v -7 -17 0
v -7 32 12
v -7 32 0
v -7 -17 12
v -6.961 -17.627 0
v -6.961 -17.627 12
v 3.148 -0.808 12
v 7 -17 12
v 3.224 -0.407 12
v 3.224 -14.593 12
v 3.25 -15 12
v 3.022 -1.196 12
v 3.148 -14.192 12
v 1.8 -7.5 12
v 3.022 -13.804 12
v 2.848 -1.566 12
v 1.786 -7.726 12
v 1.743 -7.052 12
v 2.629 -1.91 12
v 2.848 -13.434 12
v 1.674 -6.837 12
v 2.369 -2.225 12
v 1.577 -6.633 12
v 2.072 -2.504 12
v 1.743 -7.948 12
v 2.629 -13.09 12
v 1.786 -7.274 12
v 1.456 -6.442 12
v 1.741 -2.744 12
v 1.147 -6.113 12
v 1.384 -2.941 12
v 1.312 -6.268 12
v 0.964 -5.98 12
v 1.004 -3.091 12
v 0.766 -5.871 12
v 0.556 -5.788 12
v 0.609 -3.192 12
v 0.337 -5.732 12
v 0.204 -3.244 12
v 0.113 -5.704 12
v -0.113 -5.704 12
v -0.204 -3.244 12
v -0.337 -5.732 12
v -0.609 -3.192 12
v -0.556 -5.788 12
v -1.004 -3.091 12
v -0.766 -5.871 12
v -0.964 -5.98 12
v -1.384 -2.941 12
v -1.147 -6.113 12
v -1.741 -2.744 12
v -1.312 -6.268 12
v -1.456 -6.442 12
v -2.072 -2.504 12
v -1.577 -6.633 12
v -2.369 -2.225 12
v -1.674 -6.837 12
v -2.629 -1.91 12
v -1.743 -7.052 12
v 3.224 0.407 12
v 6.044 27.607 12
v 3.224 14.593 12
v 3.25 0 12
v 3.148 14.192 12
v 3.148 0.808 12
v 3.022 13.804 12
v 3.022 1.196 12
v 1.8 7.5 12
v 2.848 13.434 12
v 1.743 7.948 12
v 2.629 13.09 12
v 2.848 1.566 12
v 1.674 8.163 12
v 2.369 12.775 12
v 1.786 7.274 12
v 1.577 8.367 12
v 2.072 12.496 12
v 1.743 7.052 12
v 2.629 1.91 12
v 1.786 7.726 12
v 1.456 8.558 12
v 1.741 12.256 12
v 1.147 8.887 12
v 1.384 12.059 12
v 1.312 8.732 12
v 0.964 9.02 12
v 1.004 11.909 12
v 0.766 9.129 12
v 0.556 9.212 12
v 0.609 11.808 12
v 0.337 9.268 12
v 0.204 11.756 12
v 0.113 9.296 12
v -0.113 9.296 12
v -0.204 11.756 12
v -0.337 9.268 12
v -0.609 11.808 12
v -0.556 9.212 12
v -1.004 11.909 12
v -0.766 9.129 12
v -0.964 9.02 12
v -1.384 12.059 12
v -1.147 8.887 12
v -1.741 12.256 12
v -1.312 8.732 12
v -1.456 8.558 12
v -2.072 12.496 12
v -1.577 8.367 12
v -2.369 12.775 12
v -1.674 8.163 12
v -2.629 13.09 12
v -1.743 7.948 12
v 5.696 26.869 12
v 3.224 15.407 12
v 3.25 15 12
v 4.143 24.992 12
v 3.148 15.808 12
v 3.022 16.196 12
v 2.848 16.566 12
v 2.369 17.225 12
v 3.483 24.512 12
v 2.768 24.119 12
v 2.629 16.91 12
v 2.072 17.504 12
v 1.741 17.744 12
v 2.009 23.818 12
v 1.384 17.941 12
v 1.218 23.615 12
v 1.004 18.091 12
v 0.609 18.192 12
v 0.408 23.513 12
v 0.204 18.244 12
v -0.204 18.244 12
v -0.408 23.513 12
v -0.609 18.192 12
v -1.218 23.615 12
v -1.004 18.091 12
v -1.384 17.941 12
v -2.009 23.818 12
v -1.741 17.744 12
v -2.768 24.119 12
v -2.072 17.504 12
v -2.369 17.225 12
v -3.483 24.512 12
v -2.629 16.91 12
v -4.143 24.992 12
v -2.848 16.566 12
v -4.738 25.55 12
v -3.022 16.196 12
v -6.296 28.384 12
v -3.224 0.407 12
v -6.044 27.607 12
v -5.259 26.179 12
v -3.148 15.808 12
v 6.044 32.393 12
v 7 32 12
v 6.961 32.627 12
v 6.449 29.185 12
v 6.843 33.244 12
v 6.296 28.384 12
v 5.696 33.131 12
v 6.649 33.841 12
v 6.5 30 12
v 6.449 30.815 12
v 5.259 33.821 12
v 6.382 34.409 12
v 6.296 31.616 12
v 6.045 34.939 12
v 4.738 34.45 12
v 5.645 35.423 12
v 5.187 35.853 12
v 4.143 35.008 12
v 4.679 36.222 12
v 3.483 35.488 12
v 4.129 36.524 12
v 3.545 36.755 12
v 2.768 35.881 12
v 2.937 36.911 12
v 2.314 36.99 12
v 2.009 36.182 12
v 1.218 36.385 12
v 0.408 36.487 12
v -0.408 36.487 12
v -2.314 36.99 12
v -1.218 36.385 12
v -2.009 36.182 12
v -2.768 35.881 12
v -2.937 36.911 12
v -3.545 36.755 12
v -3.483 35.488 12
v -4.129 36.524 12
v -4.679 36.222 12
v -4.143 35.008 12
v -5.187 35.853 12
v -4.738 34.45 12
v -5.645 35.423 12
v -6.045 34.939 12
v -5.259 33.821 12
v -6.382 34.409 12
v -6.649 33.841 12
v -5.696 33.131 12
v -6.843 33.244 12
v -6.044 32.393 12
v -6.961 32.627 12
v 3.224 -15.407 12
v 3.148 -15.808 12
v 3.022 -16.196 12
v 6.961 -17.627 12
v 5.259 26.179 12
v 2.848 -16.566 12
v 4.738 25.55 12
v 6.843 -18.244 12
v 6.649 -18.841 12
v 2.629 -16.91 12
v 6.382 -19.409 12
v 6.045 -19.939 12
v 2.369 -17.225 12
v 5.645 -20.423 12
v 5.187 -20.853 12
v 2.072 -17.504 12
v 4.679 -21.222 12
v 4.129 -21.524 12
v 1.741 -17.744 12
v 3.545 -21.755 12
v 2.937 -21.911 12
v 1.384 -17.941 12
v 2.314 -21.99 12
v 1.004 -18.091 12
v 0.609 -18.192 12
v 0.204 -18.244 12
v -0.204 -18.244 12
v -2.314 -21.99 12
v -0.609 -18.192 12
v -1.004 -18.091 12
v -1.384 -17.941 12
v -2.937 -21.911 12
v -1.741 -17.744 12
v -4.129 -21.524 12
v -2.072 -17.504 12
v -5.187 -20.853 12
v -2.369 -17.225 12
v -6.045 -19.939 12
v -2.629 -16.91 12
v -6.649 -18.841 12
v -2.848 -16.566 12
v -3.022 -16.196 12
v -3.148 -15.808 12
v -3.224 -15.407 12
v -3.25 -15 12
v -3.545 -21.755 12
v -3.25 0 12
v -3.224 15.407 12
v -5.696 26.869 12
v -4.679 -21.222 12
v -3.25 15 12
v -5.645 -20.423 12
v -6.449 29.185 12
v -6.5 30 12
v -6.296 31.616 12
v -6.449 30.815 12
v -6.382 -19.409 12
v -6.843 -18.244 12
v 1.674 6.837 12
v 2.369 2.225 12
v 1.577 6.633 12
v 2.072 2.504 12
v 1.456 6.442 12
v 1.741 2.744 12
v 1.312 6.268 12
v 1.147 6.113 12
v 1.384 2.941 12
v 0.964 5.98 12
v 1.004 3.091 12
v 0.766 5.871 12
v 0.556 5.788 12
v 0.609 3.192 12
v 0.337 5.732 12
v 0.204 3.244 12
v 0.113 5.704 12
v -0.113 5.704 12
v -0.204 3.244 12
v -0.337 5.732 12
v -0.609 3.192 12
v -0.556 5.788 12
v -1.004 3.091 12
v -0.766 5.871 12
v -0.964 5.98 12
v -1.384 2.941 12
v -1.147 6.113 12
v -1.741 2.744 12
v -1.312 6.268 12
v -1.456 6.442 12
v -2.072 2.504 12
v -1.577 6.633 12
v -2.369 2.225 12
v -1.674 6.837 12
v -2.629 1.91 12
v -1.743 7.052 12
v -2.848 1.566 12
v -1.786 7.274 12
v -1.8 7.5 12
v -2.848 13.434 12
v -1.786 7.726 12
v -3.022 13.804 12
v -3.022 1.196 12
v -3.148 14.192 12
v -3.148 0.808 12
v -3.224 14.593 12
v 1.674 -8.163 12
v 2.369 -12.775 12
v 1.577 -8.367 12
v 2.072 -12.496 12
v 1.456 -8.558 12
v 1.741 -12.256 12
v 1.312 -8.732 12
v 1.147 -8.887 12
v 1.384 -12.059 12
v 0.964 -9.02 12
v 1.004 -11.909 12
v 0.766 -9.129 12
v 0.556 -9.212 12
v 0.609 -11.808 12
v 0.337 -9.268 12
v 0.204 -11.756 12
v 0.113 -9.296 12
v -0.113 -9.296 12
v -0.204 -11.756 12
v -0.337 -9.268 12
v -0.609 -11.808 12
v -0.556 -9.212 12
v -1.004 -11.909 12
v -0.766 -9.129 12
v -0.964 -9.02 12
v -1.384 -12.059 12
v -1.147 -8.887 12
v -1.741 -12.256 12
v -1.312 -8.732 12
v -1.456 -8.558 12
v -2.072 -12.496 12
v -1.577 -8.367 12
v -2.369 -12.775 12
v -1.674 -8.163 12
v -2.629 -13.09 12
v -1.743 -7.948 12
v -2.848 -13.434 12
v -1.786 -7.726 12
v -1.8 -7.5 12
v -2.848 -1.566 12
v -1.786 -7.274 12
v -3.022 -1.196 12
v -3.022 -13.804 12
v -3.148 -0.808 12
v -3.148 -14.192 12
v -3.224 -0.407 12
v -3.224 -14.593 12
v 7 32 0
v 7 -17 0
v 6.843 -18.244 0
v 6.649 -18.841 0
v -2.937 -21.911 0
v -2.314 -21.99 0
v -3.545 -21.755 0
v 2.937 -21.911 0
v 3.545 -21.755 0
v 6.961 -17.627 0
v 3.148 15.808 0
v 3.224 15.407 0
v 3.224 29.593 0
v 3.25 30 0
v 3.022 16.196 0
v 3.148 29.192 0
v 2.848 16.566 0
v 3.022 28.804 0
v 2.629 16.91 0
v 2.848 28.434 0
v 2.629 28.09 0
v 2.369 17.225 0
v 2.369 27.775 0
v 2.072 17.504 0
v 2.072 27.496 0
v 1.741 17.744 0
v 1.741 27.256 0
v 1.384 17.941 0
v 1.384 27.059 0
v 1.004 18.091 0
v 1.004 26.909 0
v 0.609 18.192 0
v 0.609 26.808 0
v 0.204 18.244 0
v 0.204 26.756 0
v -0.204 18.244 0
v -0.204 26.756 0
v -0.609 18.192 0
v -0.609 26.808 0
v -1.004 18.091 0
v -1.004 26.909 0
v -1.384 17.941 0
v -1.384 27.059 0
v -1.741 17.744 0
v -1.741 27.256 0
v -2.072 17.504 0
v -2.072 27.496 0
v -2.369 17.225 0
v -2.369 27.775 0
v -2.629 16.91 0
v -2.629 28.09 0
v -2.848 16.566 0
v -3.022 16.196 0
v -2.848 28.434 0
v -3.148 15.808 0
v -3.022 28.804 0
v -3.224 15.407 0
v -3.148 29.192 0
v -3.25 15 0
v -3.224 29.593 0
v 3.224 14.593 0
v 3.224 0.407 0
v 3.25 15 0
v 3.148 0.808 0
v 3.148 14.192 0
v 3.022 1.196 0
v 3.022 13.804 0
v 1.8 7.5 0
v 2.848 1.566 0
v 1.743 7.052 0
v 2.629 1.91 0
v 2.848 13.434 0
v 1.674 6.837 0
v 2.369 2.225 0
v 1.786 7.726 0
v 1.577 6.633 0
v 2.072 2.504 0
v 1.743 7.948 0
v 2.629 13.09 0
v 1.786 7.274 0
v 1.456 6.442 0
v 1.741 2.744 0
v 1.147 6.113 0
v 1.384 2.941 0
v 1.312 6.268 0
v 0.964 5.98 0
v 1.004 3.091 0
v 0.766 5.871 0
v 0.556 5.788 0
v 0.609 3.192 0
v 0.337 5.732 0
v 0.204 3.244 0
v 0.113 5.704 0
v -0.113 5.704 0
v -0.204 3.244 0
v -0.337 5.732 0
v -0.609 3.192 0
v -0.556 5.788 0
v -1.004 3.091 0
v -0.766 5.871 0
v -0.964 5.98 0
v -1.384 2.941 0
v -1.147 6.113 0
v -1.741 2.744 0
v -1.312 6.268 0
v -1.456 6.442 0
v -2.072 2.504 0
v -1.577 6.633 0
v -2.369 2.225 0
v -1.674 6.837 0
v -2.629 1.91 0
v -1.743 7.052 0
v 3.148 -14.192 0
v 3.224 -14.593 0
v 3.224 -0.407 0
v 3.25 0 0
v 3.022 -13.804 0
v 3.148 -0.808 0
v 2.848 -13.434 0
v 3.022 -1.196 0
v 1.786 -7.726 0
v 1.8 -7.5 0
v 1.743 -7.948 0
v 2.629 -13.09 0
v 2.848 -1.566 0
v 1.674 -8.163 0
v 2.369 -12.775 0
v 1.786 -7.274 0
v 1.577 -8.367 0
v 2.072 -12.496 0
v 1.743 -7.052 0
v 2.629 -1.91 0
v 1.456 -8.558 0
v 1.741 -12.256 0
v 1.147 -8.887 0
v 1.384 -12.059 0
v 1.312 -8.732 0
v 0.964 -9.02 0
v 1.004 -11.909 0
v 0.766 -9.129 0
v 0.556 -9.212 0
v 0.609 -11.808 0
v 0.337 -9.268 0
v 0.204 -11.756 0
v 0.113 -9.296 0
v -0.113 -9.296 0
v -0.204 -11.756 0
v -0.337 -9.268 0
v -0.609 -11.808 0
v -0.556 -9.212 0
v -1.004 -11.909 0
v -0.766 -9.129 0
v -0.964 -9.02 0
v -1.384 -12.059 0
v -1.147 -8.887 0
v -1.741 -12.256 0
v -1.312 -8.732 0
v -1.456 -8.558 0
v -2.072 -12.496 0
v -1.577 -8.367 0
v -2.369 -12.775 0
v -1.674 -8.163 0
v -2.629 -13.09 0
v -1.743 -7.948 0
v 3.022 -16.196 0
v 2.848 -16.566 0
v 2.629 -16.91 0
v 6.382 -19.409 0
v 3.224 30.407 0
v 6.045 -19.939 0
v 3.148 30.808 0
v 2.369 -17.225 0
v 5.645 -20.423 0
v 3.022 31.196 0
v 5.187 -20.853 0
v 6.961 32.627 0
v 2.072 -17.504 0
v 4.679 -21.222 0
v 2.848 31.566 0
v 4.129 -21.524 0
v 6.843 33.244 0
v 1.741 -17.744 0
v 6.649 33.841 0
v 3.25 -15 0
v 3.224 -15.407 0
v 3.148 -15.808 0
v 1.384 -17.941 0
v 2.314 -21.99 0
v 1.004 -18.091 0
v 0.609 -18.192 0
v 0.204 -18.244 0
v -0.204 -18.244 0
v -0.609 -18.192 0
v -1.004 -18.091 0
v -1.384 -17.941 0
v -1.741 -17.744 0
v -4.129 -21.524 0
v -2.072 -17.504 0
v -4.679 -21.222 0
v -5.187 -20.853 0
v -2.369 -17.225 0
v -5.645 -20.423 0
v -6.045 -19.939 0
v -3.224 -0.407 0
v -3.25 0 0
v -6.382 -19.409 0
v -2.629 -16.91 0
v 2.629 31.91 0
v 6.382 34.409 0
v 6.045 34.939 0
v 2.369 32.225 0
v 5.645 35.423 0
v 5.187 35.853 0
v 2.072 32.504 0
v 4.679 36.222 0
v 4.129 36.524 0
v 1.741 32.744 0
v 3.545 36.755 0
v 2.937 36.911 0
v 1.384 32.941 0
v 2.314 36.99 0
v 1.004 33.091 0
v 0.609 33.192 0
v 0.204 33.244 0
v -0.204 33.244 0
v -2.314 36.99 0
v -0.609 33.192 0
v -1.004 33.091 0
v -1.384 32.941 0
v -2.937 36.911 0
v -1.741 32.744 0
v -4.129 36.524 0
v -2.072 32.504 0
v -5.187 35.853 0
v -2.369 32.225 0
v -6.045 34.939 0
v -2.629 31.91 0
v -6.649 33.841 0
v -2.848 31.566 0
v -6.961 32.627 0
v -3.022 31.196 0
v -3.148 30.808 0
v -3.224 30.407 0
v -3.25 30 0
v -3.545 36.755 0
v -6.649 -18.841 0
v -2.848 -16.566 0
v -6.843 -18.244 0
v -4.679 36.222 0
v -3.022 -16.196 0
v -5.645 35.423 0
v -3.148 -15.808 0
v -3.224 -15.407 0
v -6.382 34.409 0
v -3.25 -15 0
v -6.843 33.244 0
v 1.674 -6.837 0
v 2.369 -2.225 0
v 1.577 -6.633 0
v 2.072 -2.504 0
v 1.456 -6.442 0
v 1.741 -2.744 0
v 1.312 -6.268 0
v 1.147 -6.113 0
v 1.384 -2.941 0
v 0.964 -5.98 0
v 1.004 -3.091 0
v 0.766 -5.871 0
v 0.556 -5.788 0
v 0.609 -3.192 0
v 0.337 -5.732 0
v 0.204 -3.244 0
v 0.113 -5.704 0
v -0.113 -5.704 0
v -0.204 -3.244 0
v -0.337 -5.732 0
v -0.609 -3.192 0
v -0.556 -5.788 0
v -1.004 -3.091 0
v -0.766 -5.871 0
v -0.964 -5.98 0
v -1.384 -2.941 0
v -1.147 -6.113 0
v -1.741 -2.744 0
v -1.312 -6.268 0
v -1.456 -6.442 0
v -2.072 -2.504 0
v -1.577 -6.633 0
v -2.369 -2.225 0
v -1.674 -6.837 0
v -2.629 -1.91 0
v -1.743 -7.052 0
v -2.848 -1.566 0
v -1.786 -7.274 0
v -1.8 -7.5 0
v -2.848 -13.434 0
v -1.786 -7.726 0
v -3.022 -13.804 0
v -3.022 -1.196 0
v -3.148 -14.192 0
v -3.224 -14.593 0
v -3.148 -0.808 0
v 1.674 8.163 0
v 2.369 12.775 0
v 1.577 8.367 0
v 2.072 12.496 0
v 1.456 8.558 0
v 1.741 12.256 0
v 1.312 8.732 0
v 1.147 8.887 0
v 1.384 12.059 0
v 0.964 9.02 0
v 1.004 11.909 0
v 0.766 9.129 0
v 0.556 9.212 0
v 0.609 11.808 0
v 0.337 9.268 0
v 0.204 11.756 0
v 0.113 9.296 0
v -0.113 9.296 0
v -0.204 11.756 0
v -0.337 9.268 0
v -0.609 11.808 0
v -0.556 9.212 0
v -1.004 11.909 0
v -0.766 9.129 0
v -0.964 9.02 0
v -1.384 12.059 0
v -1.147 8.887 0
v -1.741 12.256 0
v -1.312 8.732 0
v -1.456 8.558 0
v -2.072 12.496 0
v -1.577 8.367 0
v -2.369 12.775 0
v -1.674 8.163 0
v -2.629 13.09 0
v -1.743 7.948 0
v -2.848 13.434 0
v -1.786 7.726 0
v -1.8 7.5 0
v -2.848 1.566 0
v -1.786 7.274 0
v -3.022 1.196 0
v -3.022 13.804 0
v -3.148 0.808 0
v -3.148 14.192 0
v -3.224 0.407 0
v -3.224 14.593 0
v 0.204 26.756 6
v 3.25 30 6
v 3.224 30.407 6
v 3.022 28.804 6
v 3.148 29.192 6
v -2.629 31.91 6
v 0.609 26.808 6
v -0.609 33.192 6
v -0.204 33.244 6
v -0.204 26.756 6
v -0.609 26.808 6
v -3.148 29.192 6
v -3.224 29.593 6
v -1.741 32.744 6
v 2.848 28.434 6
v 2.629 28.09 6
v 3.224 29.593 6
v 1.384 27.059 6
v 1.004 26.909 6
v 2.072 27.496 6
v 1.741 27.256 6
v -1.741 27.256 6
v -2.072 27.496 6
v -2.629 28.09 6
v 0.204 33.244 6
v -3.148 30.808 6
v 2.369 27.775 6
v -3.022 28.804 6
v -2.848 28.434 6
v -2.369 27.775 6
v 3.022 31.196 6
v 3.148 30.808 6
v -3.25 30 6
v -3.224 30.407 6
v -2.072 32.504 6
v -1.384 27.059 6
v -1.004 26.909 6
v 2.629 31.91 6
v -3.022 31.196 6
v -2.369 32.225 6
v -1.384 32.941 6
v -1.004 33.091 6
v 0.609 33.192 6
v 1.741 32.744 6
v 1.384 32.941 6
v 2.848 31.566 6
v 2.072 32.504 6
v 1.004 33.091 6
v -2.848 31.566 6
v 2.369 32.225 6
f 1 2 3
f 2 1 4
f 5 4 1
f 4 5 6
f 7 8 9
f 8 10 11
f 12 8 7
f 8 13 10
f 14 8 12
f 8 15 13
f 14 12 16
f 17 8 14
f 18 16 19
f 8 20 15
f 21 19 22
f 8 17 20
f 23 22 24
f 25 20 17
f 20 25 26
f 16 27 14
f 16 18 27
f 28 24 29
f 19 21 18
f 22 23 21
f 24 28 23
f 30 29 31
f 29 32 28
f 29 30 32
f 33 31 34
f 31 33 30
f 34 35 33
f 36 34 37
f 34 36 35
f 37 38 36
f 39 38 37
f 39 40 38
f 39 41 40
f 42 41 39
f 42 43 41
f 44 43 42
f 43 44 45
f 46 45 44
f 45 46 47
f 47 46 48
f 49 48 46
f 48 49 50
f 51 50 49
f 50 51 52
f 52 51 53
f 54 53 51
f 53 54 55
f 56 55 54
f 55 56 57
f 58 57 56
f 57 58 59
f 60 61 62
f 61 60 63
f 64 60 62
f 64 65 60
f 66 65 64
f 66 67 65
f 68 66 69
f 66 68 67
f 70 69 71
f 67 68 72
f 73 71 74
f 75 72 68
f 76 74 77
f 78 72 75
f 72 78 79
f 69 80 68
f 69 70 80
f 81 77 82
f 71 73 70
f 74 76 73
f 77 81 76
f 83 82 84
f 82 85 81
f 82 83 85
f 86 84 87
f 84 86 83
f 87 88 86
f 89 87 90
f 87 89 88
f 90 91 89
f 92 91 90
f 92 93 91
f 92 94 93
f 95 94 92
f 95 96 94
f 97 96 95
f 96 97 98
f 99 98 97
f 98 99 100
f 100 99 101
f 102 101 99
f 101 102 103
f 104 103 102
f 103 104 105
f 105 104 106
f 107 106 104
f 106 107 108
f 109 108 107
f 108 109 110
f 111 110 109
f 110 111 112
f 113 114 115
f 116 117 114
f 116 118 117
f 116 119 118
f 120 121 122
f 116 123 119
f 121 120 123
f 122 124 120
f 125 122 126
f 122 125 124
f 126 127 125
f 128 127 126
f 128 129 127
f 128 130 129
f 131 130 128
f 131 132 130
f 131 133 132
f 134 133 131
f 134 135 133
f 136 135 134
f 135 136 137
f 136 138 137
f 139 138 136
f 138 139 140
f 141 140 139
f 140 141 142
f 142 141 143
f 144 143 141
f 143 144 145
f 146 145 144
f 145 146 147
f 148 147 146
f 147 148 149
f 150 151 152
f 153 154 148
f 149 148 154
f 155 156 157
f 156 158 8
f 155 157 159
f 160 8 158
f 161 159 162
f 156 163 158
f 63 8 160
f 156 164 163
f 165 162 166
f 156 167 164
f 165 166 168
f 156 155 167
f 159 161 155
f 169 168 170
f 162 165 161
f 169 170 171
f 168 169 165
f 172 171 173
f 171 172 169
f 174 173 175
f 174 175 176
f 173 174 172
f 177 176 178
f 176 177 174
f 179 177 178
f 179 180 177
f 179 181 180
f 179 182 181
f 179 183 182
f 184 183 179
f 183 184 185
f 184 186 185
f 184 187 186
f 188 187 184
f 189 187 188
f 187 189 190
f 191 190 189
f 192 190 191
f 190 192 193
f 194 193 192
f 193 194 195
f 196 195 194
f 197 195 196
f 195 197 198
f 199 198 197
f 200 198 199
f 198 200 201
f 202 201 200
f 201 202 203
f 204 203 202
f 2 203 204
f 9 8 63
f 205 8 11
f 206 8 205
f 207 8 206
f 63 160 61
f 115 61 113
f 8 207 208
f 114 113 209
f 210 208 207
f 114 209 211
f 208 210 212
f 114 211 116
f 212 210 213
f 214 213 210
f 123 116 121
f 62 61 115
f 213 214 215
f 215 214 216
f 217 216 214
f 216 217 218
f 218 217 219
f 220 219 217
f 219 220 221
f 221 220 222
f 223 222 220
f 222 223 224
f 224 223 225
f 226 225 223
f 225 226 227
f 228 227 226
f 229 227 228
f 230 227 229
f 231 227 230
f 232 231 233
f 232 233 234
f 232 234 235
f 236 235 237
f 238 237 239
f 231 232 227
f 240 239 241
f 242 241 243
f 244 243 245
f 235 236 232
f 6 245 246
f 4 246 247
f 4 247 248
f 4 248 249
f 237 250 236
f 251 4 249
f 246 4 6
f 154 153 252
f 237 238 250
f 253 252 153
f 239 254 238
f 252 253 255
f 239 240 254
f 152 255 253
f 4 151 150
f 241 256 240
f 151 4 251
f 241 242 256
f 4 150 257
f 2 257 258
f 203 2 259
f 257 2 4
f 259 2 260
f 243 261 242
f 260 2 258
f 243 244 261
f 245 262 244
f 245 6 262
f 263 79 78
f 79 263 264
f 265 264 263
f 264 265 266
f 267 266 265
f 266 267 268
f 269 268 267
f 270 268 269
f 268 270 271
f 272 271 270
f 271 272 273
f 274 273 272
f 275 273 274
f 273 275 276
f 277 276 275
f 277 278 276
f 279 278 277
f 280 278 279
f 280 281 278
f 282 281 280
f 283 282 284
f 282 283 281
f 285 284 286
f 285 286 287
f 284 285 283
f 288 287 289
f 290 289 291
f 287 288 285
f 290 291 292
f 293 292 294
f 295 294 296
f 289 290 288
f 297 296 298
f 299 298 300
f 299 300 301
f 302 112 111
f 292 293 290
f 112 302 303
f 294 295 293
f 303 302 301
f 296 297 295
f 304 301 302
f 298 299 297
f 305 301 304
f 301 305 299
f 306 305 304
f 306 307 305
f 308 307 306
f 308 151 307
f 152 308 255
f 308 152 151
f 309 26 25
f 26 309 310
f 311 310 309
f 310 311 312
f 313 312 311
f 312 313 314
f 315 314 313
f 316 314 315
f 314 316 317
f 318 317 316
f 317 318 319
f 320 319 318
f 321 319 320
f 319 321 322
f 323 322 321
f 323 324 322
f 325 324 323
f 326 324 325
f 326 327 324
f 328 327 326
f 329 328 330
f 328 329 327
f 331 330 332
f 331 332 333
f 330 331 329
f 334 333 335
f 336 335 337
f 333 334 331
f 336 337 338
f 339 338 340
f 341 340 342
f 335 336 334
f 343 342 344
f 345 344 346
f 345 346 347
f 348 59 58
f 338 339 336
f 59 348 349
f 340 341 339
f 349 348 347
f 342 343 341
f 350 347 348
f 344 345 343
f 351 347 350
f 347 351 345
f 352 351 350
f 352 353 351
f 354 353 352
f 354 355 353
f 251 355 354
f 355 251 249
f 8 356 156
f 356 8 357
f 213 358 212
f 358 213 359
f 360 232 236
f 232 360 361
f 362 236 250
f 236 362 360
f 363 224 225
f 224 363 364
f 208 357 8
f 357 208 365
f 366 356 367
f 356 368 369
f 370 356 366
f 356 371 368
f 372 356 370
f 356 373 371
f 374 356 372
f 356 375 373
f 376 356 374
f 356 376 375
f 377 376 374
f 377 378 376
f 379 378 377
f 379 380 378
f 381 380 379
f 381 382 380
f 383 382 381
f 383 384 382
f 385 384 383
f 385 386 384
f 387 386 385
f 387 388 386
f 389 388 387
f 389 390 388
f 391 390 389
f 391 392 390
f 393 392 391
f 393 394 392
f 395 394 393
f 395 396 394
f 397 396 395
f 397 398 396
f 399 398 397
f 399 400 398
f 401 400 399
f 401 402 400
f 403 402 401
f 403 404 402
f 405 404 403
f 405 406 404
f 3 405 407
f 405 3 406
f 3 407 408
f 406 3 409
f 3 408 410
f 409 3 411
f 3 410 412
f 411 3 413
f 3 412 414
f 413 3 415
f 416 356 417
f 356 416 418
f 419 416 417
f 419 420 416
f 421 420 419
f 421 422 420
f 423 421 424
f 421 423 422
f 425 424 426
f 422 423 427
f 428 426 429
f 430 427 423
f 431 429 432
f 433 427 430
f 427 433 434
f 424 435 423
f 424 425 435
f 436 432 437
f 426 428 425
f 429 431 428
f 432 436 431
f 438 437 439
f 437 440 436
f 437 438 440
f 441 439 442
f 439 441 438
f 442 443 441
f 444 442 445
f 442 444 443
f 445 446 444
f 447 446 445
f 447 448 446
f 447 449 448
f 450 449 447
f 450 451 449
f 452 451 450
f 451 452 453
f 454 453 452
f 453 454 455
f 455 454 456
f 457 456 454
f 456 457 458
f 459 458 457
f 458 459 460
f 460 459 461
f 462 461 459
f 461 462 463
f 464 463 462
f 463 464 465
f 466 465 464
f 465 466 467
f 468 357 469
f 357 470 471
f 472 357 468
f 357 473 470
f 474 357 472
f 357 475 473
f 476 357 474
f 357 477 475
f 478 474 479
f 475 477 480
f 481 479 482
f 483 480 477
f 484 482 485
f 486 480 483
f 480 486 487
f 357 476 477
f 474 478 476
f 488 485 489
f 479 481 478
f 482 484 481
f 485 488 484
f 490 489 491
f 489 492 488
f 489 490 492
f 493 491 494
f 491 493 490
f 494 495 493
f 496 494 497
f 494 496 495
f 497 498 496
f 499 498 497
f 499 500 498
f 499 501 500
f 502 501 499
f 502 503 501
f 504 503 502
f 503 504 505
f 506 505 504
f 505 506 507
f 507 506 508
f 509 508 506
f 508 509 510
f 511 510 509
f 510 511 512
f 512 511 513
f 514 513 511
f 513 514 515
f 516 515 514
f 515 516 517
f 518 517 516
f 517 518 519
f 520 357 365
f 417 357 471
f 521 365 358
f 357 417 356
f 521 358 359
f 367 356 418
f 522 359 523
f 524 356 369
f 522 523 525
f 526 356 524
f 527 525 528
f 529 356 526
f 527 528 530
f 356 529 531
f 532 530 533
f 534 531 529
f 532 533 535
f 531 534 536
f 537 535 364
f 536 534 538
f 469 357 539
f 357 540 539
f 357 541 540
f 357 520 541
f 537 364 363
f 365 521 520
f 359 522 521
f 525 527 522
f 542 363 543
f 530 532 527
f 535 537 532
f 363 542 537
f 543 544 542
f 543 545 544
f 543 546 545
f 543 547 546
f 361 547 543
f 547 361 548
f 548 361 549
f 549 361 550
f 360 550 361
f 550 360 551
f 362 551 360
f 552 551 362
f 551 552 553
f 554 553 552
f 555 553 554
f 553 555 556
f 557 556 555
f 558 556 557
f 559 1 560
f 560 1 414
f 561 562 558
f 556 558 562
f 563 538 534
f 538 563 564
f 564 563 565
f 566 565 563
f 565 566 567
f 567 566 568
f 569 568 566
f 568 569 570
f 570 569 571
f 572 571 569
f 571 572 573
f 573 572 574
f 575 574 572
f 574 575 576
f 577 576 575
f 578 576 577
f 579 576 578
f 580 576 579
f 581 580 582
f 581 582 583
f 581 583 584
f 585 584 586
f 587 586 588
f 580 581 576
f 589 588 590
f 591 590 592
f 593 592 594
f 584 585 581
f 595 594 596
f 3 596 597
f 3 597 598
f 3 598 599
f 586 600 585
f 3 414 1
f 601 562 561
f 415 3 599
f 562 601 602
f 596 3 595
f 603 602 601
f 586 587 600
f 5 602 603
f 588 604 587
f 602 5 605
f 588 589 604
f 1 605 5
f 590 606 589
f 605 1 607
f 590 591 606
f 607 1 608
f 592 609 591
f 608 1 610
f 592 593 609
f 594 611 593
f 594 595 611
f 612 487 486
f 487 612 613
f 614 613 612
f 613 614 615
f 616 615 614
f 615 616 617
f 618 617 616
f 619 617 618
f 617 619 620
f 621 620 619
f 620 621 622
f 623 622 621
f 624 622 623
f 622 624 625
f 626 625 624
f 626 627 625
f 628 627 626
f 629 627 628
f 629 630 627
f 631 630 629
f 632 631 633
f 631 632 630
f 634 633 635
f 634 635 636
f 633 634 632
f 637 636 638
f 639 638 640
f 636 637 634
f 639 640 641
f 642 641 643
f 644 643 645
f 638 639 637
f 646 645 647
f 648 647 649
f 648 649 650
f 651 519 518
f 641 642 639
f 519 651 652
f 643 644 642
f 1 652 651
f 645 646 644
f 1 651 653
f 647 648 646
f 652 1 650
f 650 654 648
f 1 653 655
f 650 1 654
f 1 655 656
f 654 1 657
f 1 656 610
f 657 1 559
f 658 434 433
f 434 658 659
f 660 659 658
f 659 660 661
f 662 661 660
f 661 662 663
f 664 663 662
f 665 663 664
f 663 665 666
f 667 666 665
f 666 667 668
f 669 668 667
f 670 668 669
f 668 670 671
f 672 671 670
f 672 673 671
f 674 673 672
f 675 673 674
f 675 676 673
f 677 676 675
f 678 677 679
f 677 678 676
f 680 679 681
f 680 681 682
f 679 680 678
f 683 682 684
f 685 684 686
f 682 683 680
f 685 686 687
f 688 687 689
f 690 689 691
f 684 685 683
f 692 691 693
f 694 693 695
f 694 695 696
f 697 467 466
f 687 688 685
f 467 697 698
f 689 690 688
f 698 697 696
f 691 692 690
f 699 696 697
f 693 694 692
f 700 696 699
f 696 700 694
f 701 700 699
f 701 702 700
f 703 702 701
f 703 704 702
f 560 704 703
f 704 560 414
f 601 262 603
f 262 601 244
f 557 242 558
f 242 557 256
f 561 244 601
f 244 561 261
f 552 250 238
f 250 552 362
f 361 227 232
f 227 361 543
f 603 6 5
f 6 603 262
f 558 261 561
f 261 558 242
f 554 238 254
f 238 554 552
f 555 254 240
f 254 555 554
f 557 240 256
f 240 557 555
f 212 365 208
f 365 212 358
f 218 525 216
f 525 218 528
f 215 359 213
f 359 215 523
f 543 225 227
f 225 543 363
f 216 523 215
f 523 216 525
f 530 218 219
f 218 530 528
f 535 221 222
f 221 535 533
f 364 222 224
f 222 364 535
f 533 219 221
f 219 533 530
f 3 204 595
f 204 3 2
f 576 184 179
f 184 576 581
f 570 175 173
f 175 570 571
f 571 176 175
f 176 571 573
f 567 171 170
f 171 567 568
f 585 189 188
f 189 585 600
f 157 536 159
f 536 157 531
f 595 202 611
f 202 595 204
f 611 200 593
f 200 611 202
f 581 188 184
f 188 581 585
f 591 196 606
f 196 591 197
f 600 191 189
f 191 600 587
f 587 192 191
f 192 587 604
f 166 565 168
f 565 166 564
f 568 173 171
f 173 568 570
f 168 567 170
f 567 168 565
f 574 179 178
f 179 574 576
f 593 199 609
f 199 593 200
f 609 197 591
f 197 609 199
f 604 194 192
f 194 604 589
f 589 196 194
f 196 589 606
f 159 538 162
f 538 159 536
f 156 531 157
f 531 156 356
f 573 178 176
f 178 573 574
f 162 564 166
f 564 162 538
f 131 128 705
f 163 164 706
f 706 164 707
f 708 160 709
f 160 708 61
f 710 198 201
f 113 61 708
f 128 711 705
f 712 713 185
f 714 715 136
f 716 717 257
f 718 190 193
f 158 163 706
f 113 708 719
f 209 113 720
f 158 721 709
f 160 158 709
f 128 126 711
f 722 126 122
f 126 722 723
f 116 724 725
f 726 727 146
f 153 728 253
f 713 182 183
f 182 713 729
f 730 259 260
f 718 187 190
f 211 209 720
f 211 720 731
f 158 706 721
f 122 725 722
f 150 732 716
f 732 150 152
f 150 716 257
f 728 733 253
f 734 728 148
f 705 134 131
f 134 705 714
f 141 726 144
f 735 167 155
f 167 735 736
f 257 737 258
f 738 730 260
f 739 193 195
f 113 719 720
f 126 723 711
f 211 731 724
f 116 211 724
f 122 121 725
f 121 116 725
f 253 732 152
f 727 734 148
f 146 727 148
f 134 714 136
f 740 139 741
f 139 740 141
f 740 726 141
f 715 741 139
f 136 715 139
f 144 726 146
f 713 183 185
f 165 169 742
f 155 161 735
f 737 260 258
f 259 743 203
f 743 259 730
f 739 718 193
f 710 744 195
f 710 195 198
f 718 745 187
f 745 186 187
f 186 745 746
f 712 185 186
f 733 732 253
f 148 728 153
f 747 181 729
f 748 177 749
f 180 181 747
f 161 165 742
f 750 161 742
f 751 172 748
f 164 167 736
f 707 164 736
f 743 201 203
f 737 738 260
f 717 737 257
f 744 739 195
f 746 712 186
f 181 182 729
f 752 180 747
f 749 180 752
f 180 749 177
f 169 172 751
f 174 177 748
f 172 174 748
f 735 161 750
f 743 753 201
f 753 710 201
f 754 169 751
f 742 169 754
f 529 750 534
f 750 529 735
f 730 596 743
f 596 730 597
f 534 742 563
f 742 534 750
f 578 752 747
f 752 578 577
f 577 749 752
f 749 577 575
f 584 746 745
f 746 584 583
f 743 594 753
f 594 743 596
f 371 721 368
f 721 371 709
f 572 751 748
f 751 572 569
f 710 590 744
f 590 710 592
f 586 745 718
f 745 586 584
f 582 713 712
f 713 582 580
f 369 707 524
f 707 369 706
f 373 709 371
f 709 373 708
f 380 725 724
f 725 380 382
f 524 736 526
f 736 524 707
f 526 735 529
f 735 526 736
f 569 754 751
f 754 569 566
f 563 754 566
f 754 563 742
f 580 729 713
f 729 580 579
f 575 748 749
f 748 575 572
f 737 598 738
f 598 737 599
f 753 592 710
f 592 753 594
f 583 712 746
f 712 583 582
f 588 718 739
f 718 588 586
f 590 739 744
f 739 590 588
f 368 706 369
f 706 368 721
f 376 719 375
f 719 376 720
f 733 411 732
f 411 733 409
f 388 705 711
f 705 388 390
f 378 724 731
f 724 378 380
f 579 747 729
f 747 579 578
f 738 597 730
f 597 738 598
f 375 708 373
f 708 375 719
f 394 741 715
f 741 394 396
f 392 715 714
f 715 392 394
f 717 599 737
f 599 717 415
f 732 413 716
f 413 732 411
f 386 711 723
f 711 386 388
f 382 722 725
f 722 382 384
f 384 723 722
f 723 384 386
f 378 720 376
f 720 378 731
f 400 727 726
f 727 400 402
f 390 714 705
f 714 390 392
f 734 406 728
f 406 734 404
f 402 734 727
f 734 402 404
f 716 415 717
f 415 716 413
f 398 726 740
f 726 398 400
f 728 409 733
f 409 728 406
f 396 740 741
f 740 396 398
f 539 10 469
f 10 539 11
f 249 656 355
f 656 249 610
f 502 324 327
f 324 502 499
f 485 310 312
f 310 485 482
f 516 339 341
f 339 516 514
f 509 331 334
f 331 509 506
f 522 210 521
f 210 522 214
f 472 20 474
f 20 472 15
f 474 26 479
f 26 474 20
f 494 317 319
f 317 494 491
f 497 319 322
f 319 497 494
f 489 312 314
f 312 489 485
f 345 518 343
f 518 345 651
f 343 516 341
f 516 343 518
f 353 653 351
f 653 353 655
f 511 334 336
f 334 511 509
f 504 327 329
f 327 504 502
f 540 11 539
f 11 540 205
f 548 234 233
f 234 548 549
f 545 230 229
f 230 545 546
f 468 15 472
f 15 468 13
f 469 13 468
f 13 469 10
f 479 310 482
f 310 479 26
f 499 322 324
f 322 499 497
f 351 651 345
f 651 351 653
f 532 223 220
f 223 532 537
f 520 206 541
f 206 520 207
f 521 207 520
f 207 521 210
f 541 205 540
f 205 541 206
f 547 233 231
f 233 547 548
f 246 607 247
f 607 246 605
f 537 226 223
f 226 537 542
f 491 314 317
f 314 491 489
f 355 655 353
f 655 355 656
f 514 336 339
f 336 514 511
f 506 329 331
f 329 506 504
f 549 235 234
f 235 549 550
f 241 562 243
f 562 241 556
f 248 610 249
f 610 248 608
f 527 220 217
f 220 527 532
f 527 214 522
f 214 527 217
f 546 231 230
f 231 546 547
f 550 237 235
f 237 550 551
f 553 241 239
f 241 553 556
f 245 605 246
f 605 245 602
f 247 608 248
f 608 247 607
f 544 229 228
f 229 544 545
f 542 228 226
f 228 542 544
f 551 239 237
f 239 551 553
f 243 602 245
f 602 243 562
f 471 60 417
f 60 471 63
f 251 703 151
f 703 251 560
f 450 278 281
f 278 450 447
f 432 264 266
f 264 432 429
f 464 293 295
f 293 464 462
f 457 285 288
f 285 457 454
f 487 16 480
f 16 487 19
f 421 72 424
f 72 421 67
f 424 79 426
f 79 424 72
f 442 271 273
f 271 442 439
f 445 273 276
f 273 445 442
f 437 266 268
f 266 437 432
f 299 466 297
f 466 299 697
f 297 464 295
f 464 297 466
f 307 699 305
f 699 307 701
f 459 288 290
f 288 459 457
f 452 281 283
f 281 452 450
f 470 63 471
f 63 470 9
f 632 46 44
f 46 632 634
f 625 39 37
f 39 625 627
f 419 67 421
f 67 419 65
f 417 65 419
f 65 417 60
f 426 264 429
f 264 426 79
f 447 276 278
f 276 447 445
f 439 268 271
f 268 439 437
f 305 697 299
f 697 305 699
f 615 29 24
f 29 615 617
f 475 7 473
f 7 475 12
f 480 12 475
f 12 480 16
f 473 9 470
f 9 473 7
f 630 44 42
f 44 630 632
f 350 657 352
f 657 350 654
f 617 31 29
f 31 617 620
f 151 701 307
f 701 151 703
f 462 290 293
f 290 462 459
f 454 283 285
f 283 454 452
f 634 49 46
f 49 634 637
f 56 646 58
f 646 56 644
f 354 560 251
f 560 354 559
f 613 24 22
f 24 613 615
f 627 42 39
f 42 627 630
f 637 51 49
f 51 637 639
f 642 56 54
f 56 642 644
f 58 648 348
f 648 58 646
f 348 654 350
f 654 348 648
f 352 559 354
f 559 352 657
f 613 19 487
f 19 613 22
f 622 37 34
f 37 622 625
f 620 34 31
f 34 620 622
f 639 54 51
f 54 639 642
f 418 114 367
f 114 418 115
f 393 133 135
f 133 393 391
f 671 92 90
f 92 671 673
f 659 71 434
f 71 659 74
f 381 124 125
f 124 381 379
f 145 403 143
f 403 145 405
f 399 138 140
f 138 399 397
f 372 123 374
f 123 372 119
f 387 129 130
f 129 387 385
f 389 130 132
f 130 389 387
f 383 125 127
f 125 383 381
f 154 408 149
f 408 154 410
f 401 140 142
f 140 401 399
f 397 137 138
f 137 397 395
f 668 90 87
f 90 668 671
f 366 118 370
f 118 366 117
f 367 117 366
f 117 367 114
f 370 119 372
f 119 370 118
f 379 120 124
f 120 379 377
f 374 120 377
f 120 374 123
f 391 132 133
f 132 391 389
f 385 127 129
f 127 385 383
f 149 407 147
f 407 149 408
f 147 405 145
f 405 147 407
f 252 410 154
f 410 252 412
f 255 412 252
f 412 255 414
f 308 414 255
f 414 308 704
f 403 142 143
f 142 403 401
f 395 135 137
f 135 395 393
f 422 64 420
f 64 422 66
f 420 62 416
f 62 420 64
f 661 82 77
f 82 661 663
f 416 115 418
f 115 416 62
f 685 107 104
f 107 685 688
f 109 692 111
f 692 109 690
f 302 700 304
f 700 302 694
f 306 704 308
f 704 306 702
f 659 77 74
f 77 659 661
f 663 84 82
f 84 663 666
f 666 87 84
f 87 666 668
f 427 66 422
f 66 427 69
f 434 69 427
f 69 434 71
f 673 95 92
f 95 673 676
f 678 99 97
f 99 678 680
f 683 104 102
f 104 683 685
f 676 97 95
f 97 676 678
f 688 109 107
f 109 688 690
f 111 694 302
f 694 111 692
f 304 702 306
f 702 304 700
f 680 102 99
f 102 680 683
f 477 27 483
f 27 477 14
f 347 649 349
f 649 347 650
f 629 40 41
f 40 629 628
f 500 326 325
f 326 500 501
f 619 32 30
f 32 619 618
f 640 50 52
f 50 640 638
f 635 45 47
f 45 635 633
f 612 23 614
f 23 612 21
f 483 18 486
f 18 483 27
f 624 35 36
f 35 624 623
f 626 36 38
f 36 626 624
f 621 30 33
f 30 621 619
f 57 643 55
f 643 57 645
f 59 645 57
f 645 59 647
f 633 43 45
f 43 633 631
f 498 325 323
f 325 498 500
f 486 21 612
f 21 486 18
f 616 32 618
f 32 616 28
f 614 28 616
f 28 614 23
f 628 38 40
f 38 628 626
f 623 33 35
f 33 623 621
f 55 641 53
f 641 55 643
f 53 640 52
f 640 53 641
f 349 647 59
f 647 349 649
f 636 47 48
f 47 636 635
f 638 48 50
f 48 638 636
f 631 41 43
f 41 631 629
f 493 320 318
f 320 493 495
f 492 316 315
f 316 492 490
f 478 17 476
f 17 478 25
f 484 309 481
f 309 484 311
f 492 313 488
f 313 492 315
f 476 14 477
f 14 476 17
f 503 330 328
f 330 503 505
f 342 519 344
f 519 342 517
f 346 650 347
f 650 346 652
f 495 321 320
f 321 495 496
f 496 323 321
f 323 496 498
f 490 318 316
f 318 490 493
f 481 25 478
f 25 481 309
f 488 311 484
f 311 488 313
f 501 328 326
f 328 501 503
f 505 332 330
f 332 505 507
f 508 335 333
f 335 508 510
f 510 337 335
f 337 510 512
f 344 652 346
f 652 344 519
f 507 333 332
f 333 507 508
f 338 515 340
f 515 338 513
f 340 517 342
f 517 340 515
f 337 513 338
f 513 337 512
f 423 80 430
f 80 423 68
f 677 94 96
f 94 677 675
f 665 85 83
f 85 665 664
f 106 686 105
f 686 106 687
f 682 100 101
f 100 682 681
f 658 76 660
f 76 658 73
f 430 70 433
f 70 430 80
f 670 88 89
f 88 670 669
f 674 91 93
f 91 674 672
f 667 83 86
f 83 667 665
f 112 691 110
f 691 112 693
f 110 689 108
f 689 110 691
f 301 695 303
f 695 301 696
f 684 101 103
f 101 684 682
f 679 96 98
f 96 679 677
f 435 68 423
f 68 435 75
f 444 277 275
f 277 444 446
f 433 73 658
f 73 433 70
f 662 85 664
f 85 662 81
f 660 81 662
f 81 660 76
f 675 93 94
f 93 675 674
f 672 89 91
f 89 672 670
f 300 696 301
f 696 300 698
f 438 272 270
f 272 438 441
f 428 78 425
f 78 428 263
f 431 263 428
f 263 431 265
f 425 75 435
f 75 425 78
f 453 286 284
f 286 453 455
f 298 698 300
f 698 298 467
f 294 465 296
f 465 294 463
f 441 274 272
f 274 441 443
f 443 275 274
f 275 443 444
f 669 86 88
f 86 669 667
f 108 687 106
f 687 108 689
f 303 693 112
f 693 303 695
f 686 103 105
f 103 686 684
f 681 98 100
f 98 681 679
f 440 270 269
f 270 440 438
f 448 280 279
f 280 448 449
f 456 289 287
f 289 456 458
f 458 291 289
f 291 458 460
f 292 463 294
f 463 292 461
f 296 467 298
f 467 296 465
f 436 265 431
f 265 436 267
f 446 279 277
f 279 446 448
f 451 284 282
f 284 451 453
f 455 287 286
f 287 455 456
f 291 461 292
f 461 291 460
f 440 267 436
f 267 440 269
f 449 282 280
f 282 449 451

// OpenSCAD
$fn = 50;


difference() {
	union() {
		hull() {
			translate(v = [-2.0000000000, 17.0000000000, 0]) {
				cylinder(h = 12, r = 5);
			}
			translate(v = [2.0000000000, 17.0000000000, 0]) {
				cylinder(h = 12, r = 5);
			}
			translate(v = [-2.0000000000, -17.0000000000, 0]) {
				cylinder(h = 12, r = 5);
			}
			translate(v = [2.0000000000, -17.0000000000, 0]) {
				cylinder(h = 12, r = 5);
			}
		}
		translate(v = [0.0000000000, 22.5000000000, 0]) {
			hull() {
				translate(v = [-2.0000000000, 9.5000000000, 0]) {
					cylinder(h = 12, r = 5);
				}
				translate(v = [2.0000000000, 9.5000000000, 0]) {
					cylinder(h = 12, r = 5);
				}
				translate(v = [-2.0000000000, -9.5000000000, 0]) {
					cylinder(h = 12, r = 5);
				}
				translate(v = [2.0000000000, -9.5000000000, 0]) {
					cylinder(h = 12, r = 5);
				}
			}
		}
		translate(v = [0.0000000000, 22.5000000000, 0]) {
			hull() {
				translate(v = [-2.0000000000, 9.5000000000, 0]) {
					cylinder(h = 12, r = 5);
				}
				translate(v = [2.0000000000, 9.5000000000, 0]) {
					cylinder(h = 12, r = 5);
				}
				translate(v = [-2.0000000000, -9.5000000000, 0]) {
					cylinder(h = 12, r = 5);
				}
				translate(v = [2.0000000000, -9.5000000000, 0]) {
					cylinder(h = 12, r = 5);
				}
			}
		}
	}
	union() {
		translate(v = [0.0000000000, 30.0000000000, 12]) {
			rotate(a = [0, 0, 0]) {
				difference() {
					union() {
						#translate(v = [0, 0, -12.0000000000]) {
							cylinder(h = 12, r = 2.2500000000);
						}
						#translate(v = [0, 0, -6]) {
							cylinder(h = 6, r1 = 3.2500000000, r2 = 6.5000000000);
						}
						#translate(v = [0, 0, -12.0000000000]) {
							cylinder(h = 12, r = 3.2500000000);
						}
						#translate(v = [0, 0, -12.0000000000]) {
							cylinder(h = 12, r = 2.2500000000);
						}
					}
					union();
				}
			}
		}
		translate(v = [0.0000000000, 30.0000000000, 12]) {
			rotate(a = [0, 0, 0]) {
				difference() {
					union() {
						#translate(v = [0, 0, -12.0000000000]) {
							cylinder(h = 12, r = 2.2500000000);
						}
						#translate(v = [0, 0, -6]) {
							cylinder(h = 6, r1 = 3.2500000000, r2 = 6.5000000000);
						}
						#translate(v = [0, 0, -12.0000000000]) {
							cylinder(h = 12, r = 3.2500000000);
						}
						#translate(v = [0, 0, -12.0000000000]) {
							cylinder(h = 12, r = 2.2500000000);
						}
					}
					union();
				}
			}
		}
		translate(v = [0.0000000000, -15.0000000000, 0]) {
			translate(v = [0, 0, -100]) {
				cylinder(h = 200, r = 3.2500000000);
			}
		}
		translate(v = [0, 0, -100]) {
			cylinder(h = 200, r = 3.2500000000);
		}
		translate(v = [0.0000000000, 15.0000000000, 0]) {
			translate(v = [0, 0, -100]) {
				cylinder(h = 200, r = 3.2500000000);
			}
		}
		translate(v = [0.0000000000, -15.0000000000, 0]) {
			translate(v = [0, 0, -100]) {
				cylinder(h = 200, r = 1.8000000000);
			}
		}
		translate(v = [0.0000000000, -7.5000000000, 0]) {
			translate(v = [0, 0, -100]) {
				cylinder(h = 200, r = 1.8000000000);
			}
		}
		translate(v = [0, 0, -100]) {
			cylinder(h = 200, r = 1.8000000000);
		}
		translate(v = [0.0000000000, 7.5000000000, 0]) {
			translate(v = [0, 0, -100]) {
				cylinder(h = 200, r = 1.8000000000);
			}
		}
		translate(v = [0.0000000000, 15.0000000000, 0]) {
			translate(v = [0, 0, -100]) {
				cylinder(h = 200, r = 1.8000000000);
			}
		}
	}
}
